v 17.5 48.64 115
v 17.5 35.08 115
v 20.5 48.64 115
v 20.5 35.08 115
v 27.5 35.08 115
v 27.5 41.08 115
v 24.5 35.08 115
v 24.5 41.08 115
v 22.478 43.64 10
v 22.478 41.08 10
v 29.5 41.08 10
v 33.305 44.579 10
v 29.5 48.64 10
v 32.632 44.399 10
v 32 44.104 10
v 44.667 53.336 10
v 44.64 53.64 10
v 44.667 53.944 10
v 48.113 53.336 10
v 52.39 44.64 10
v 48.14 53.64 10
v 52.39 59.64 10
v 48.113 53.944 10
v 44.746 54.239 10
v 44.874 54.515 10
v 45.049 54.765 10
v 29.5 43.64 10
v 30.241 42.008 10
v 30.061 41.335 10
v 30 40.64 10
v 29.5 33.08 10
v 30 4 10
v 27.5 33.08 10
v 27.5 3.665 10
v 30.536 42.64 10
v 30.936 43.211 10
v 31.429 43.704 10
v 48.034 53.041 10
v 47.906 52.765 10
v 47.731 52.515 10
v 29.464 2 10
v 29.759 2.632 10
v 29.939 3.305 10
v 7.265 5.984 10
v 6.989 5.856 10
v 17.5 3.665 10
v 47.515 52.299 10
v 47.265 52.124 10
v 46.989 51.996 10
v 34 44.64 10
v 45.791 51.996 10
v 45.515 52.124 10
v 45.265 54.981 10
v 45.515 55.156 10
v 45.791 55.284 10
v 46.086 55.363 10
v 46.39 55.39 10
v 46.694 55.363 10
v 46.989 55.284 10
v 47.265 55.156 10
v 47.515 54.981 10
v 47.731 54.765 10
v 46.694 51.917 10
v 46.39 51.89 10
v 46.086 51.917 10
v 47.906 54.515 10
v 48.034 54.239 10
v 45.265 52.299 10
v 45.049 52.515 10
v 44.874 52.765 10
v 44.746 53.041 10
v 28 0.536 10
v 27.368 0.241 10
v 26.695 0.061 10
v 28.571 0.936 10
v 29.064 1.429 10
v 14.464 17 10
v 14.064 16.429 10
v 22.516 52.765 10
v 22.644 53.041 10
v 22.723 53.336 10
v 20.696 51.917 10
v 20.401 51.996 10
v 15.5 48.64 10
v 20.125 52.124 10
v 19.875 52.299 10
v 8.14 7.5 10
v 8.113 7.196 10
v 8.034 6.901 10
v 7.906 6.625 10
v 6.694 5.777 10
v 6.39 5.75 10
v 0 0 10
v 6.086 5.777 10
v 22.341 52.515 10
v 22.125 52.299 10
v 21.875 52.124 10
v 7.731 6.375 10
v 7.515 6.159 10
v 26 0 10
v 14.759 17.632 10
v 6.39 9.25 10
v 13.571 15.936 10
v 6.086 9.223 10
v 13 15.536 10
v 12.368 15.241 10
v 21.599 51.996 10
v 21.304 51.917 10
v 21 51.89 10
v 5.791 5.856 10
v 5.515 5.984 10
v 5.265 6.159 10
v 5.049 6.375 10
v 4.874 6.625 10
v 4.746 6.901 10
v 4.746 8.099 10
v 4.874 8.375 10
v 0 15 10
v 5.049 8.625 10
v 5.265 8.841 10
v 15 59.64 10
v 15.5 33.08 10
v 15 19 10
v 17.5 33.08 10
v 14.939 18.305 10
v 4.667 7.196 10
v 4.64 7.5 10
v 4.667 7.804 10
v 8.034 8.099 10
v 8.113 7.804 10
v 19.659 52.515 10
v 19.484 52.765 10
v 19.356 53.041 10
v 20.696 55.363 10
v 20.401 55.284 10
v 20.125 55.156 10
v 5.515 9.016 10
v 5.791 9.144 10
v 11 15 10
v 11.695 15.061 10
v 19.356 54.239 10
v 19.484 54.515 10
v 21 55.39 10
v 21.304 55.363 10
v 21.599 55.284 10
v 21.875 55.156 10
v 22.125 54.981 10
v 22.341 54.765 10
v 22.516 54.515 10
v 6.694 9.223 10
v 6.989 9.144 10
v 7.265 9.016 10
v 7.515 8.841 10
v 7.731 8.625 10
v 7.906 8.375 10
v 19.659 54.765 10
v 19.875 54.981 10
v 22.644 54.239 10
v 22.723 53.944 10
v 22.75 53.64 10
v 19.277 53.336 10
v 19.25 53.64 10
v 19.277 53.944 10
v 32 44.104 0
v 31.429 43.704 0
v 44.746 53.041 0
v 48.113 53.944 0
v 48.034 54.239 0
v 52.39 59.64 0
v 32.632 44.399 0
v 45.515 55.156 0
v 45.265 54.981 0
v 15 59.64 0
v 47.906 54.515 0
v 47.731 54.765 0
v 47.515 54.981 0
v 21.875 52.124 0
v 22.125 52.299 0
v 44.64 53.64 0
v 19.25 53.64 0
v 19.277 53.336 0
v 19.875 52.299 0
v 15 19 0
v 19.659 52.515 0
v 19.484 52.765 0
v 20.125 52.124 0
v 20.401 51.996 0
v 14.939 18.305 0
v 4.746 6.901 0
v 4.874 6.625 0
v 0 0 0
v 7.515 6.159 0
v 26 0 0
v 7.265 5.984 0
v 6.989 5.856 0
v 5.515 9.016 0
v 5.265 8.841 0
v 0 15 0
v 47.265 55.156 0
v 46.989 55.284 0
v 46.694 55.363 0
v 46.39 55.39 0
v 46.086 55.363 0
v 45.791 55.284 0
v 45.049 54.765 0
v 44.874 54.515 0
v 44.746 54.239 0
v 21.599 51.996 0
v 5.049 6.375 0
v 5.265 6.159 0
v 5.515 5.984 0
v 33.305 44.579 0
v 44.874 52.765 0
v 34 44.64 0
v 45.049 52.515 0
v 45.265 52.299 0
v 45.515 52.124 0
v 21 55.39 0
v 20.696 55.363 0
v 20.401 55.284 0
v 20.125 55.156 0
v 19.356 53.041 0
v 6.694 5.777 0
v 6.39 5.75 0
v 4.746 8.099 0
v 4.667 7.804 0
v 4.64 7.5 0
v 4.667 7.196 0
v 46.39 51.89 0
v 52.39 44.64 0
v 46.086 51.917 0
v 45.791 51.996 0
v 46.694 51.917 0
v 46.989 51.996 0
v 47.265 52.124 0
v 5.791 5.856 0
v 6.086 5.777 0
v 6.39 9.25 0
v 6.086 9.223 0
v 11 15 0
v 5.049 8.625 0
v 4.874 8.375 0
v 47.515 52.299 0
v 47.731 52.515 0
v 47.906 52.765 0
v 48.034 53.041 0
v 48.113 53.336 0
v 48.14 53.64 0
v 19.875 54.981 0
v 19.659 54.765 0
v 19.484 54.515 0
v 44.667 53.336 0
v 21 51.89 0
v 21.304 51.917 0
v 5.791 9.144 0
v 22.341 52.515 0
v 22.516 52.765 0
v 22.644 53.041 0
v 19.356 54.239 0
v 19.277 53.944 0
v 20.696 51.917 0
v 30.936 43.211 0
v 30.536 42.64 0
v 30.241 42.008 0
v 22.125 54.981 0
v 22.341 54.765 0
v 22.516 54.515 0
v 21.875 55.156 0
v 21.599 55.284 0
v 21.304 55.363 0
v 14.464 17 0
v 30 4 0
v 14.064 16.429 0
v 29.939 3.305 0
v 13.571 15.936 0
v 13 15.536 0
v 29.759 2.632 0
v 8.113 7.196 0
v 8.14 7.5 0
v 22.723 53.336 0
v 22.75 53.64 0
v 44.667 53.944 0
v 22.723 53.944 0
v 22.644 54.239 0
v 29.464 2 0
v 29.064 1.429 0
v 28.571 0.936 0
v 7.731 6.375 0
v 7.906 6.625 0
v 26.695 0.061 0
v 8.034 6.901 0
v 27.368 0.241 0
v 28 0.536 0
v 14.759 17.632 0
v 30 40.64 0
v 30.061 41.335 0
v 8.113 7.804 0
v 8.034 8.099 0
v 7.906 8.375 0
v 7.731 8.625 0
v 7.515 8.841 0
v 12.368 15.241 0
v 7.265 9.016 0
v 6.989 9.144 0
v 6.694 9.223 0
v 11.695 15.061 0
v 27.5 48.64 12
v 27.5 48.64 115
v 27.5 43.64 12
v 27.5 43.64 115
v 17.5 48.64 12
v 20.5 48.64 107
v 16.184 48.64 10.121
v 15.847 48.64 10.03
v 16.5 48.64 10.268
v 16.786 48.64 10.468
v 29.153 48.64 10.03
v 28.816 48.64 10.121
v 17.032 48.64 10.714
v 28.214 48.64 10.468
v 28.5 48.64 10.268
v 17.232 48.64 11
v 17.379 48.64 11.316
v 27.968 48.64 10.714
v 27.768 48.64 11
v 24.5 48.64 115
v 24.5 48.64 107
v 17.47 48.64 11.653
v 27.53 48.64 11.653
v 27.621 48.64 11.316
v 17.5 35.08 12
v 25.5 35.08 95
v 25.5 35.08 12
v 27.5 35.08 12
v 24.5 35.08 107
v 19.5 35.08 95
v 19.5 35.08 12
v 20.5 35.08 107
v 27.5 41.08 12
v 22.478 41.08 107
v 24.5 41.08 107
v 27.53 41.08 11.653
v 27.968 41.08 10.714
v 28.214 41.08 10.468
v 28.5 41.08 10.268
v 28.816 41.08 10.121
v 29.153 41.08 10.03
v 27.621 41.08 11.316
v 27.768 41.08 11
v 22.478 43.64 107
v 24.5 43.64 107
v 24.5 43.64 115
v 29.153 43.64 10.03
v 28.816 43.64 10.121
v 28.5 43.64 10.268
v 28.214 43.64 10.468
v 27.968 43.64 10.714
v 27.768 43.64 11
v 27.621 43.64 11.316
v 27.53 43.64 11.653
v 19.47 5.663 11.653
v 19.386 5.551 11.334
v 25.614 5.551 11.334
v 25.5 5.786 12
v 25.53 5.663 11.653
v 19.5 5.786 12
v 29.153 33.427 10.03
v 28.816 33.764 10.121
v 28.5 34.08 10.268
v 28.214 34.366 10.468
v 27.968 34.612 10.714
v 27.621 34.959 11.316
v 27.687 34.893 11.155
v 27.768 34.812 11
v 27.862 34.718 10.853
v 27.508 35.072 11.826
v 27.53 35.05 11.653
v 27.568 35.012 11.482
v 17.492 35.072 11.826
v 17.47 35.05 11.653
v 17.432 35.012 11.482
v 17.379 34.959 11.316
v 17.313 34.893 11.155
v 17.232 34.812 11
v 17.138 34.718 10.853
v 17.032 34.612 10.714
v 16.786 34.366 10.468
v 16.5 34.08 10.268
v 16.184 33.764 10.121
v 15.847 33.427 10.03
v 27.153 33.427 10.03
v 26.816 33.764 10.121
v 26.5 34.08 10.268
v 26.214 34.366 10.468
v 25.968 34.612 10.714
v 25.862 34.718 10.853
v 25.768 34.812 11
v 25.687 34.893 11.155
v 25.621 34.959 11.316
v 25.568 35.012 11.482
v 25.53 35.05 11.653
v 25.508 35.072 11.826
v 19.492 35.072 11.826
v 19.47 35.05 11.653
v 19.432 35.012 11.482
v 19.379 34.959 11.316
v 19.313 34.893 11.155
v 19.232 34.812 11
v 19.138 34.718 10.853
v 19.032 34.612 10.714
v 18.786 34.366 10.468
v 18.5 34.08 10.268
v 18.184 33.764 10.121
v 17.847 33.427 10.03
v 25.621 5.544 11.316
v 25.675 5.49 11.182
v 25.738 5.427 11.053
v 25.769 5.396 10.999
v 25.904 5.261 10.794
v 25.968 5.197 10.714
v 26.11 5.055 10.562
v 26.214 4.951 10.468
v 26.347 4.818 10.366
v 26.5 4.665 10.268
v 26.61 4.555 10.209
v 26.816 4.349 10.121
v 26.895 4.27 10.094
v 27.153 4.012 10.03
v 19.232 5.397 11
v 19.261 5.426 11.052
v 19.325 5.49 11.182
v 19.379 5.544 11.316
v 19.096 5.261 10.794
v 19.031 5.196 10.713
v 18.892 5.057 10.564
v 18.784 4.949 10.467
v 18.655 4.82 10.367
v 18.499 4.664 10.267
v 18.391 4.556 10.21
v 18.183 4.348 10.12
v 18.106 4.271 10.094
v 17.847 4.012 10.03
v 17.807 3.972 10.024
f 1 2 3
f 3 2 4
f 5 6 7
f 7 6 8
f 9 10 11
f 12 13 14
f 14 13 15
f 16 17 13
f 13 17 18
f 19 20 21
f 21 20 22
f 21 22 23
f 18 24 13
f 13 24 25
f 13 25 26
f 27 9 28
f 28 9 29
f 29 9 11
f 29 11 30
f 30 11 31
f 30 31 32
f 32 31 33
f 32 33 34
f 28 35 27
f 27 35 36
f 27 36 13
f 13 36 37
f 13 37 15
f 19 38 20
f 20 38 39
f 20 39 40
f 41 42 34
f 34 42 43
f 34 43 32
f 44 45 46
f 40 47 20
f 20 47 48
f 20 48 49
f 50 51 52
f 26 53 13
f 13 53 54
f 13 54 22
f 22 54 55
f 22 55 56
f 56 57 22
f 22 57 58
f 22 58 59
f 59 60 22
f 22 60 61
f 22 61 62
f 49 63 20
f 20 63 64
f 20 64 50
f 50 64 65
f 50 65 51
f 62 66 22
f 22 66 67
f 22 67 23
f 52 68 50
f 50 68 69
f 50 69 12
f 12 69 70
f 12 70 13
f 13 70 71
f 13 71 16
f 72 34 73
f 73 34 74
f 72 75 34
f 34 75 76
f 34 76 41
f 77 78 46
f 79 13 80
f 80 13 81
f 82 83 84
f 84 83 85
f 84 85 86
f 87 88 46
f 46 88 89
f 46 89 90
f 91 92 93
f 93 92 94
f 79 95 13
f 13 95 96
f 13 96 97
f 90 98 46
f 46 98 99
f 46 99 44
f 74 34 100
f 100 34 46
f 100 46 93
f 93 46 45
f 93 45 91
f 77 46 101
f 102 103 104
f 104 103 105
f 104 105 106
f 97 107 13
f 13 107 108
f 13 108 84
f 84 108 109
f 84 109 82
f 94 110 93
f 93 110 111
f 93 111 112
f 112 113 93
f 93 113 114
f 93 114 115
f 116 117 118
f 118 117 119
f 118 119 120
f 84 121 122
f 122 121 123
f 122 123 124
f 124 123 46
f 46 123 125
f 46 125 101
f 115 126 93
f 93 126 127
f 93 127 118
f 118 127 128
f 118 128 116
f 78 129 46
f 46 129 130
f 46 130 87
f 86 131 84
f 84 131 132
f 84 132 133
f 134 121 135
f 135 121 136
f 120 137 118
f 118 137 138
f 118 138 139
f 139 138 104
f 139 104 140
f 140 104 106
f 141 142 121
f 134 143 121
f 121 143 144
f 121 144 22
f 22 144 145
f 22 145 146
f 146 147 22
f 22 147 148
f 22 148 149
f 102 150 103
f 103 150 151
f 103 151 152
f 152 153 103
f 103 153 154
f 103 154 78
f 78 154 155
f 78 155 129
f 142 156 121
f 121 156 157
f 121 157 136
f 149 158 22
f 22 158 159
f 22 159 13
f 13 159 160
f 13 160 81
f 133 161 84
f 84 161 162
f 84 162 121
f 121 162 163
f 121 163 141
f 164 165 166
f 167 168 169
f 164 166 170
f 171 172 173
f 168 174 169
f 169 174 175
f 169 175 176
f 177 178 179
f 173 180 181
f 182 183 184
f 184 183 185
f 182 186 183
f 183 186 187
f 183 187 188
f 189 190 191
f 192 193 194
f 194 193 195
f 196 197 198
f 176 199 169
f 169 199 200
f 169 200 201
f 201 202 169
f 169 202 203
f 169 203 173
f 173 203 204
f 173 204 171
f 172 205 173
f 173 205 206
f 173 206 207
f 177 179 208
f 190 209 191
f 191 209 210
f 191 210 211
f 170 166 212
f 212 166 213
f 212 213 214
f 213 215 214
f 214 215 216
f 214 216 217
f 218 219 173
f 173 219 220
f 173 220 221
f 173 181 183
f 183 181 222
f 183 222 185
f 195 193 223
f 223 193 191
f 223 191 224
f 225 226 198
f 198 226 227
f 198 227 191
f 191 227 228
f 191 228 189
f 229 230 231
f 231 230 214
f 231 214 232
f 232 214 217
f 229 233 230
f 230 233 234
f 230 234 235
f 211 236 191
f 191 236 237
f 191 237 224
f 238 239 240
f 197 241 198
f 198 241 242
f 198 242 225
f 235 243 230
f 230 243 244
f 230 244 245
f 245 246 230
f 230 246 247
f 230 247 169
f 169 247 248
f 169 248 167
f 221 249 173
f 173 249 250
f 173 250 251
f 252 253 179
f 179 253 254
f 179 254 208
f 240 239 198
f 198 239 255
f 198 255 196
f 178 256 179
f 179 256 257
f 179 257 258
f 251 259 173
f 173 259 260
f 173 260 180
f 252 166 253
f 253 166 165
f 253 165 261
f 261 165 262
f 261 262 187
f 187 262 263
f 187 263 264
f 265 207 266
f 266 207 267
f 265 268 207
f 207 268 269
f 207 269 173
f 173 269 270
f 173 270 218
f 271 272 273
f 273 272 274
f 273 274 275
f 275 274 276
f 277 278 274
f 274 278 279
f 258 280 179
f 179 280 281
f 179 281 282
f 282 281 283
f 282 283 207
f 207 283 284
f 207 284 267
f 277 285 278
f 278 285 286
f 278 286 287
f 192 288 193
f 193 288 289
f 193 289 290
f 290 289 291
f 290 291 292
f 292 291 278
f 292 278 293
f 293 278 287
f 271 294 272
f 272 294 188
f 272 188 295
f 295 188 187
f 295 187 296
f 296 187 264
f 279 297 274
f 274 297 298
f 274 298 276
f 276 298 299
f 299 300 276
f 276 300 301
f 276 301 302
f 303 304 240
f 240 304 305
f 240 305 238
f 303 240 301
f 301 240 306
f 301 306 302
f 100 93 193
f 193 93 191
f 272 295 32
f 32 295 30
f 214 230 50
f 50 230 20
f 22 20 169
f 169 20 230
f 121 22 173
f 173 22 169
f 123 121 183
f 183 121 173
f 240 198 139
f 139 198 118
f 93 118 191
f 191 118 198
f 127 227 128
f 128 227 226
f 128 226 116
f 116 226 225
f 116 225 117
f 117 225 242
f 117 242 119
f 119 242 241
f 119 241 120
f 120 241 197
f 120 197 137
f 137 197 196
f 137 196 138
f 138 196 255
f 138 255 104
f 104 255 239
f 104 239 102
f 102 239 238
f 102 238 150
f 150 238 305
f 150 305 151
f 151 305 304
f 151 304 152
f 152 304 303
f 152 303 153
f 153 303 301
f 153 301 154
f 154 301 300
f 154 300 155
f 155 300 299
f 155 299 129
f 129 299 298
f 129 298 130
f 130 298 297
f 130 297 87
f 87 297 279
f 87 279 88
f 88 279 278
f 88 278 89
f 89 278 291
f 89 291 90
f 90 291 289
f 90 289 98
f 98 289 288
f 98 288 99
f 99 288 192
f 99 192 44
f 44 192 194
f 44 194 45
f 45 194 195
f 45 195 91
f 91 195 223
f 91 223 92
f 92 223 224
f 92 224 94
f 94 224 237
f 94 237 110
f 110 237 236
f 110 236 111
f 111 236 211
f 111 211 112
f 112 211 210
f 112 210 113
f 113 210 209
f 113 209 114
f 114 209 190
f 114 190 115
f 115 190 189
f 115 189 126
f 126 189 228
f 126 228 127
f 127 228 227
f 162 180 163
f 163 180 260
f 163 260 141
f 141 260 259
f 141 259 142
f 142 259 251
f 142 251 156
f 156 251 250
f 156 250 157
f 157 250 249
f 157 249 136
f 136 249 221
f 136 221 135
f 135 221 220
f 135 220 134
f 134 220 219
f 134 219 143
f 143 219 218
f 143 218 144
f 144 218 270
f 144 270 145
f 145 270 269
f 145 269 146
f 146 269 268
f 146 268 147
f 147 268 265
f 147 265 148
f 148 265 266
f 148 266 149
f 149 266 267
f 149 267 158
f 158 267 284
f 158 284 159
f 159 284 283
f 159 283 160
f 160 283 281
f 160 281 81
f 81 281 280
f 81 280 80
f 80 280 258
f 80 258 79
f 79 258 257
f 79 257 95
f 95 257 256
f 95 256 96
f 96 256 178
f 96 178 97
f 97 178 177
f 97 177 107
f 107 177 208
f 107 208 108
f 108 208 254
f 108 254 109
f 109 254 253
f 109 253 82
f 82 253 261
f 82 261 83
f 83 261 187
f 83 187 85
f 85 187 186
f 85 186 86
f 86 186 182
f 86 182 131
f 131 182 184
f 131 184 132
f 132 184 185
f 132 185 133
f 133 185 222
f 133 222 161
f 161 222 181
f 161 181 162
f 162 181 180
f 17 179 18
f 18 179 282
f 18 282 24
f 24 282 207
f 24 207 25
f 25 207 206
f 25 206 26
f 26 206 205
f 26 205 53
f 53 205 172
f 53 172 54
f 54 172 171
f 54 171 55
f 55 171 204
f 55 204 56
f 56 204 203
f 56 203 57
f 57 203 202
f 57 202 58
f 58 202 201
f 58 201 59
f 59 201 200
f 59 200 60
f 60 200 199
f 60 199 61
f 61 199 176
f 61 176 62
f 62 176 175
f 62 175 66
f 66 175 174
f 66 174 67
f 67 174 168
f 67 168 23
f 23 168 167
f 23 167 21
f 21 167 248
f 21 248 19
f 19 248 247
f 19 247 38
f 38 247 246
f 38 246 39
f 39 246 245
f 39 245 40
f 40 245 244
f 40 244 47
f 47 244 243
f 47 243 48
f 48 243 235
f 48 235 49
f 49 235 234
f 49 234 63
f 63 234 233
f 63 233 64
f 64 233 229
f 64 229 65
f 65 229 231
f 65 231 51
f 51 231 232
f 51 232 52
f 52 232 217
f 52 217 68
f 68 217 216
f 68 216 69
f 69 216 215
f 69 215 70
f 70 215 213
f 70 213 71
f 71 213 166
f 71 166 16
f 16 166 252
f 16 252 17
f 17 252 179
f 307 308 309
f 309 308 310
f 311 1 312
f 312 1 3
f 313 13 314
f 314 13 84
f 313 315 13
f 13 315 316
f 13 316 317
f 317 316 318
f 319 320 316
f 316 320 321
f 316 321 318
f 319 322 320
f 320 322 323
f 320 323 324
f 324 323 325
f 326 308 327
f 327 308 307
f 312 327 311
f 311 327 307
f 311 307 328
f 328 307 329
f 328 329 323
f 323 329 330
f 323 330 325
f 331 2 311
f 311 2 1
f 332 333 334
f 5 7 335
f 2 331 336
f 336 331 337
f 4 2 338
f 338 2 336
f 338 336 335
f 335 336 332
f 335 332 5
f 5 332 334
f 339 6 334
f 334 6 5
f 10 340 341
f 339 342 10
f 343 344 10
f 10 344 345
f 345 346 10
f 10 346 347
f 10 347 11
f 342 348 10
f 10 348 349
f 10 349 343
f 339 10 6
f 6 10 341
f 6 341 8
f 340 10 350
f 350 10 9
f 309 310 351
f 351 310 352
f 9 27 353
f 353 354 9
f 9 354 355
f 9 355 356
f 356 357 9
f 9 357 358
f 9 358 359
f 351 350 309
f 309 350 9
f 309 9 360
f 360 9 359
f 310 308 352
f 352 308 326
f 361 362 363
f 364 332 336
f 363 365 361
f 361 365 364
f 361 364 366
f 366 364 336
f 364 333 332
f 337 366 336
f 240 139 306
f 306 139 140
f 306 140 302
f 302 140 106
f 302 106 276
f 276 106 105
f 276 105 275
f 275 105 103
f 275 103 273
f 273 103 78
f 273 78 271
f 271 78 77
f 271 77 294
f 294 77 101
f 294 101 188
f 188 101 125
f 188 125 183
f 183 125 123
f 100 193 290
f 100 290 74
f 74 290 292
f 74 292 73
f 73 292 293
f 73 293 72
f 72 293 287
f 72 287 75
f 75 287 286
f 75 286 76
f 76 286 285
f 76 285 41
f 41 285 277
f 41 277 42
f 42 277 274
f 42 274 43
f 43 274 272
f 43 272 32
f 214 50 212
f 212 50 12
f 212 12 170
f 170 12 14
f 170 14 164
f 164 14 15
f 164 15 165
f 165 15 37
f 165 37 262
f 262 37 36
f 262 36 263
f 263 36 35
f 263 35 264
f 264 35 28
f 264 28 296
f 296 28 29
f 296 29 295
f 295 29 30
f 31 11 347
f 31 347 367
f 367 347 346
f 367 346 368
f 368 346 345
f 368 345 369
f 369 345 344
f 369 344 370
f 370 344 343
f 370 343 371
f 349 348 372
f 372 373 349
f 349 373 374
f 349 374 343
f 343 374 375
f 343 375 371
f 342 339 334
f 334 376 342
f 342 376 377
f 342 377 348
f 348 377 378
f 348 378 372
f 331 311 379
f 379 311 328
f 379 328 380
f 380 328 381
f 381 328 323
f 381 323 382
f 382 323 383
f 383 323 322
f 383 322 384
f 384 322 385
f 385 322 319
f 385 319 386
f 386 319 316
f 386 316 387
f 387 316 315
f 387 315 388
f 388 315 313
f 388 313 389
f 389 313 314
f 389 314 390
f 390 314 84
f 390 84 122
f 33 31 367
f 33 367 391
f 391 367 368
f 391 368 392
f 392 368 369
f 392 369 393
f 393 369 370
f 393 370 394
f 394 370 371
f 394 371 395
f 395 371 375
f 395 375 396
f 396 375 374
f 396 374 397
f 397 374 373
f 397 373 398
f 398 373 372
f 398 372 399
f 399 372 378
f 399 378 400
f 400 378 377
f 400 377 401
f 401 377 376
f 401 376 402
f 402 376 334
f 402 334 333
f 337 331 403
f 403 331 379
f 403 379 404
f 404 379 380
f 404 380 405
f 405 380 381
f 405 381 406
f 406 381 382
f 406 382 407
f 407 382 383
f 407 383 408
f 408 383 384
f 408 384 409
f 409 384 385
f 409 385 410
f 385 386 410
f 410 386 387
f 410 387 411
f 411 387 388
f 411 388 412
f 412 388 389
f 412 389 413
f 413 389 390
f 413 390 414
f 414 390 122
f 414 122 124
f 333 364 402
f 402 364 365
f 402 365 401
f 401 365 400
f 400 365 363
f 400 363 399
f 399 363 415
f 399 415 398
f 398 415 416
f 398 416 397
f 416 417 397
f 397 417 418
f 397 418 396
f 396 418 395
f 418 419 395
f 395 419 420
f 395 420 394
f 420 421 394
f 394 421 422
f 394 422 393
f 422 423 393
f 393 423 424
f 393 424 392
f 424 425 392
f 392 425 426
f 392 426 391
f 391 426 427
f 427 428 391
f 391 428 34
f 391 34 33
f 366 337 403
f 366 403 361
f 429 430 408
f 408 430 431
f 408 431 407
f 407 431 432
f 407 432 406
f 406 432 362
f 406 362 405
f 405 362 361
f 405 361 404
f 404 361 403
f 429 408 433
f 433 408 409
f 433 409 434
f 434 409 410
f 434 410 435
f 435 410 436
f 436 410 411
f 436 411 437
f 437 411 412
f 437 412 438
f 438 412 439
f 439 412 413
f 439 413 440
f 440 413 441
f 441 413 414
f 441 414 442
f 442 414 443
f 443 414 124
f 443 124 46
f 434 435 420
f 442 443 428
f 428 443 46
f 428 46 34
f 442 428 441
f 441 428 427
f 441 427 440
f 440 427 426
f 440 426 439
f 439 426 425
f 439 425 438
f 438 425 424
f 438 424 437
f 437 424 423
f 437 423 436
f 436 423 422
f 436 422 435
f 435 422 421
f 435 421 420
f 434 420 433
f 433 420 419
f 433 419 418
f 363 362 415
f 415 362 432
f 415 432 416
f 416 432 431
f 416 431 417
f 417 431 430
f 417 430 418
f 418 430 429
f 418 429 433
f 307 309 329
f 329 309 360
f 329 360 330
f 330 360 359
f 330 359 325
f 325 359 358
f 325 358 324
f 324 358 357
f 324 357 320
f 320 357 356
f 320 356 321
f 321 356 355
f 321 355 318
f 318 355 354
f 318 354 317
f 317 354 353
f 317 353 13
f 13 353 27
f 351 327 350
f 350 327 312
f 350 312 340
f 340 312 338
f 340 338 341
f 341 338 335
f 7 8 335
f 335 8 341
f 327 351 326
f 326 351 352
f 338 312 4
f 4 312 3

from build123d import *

# Parameters (mm, degrees)
SKETCH1_R           = 1.75
BOSS_EXTRUDE1_DEPTH = 10
BOSS_EXTRUDE2_DEPTH = 105
RIB1_REACH          = 134.949
SKETCH3_WALL_W      = 358.03606807
SKETCH3_WALL_H      = 6
FILLET1_R           = 4
FILLET2_R           = 2
SKETCH4_W           = 4
SKETCH4_H           = 13.56
CUT_EXTRUDE1_DEPTH  = 8


with BuildPart() as part:
    # Sketch1 → Boss-Extrude1 (new body)
    with BuildSketch(Plane.XY):
        Polygon((0, 0), (0, 15), (15, 15), (15, 59.64), (52.39, 59.64), (52.39, 44.64), (30, 44.64), (30, 0), align=None)
        with Locations((6.39, 7.5)):
            Circle(SKETCH1_R, mode=Mode.SUBTRACT)
        with Locations((21, 53.64)):
            Circle(SKETCH1_R, mode=Mode.SUBTRACT)
        with Locations((46.39, 53.64)):
            Circle(SKETCH1_R, mode=Mode.SUBTRACT)
    extrude(amount=BOSS_EXTRUDE1_DEPTH)

    # Sketch2 → Boss-Extrude2 (add)
    with BuildSketch(Plane.XY.offset(10)):
        Polygon((27.5, 48.64), (17.5, 48.64), (17.5, 35.08), (27.5, 35.08), (27.5, 41.08), (22.477989852, 41.08), (22.477989852, 43.64), (27.5, 43.64), align=None)
    extrude(amount=BOSS_EXTRUDE2_DEPTH)

    # Sketch3 wall → Rib1 (add, up to next)
    with BuildSketch(Plane(origin=(22.5, 20.08, 52.5), x_dir=(0, 0.332820117735, 0.942990333583), z_dir=(0, -0.942990333583, 0.332820117735)), mode=Mode.PRIVATE) as rib1_sk1:
        Rectangle(SKETCH3_WALL_W, SKETCH3_WALL_H)
    rib1_tool1 = extrude(rib1_sk1.sketch, amount=-RIB1_REACH, mode=Mode.PRIVATE) - part.part
    add(rib1_tool1.solids().sort_by_distance((22.5, 20.08, 52.5))[0])

    # Fillet1
    fillet1_edges = [part.edges().sort_by_distance(p)[0] for p in [
        (15, 15, 5),
        (30, 44.64, 5),
        (30, 0, 5),
    ]]
    fillet(fillet1_edges, radius=FILLET1_R)

    # Fillet2
    fillet2_edges = [part.edges().sort_by_distance(p)[0] for p in [
        (27.5, 46.14, 10),
        (27.5, 38.08, 10),
        (26.5, 35.08, 10),
        (25.5, 20.08, 10),
        (19.5, 20.08, 10),
        (18.5, 35.08, 10),
        (17.5, 41.86, 10),
        (22.5, 5.08, 10),
    ]]
    fillet(fillet2_edges, radius=FILLET2_R)

    # Sketch4 → Cut-Extrude1 (cut)
    with BuildSketch(Plane.XY.offset(115)):
        with Locations((22.5, 41.86)):
            Rectangle(SKETCH4_W, SKETCH4_H)
    extrude(amount=-CUT_EXTRUDE1_DEPTH, mode=Mode.SUBTRACT)


solid = part.part
